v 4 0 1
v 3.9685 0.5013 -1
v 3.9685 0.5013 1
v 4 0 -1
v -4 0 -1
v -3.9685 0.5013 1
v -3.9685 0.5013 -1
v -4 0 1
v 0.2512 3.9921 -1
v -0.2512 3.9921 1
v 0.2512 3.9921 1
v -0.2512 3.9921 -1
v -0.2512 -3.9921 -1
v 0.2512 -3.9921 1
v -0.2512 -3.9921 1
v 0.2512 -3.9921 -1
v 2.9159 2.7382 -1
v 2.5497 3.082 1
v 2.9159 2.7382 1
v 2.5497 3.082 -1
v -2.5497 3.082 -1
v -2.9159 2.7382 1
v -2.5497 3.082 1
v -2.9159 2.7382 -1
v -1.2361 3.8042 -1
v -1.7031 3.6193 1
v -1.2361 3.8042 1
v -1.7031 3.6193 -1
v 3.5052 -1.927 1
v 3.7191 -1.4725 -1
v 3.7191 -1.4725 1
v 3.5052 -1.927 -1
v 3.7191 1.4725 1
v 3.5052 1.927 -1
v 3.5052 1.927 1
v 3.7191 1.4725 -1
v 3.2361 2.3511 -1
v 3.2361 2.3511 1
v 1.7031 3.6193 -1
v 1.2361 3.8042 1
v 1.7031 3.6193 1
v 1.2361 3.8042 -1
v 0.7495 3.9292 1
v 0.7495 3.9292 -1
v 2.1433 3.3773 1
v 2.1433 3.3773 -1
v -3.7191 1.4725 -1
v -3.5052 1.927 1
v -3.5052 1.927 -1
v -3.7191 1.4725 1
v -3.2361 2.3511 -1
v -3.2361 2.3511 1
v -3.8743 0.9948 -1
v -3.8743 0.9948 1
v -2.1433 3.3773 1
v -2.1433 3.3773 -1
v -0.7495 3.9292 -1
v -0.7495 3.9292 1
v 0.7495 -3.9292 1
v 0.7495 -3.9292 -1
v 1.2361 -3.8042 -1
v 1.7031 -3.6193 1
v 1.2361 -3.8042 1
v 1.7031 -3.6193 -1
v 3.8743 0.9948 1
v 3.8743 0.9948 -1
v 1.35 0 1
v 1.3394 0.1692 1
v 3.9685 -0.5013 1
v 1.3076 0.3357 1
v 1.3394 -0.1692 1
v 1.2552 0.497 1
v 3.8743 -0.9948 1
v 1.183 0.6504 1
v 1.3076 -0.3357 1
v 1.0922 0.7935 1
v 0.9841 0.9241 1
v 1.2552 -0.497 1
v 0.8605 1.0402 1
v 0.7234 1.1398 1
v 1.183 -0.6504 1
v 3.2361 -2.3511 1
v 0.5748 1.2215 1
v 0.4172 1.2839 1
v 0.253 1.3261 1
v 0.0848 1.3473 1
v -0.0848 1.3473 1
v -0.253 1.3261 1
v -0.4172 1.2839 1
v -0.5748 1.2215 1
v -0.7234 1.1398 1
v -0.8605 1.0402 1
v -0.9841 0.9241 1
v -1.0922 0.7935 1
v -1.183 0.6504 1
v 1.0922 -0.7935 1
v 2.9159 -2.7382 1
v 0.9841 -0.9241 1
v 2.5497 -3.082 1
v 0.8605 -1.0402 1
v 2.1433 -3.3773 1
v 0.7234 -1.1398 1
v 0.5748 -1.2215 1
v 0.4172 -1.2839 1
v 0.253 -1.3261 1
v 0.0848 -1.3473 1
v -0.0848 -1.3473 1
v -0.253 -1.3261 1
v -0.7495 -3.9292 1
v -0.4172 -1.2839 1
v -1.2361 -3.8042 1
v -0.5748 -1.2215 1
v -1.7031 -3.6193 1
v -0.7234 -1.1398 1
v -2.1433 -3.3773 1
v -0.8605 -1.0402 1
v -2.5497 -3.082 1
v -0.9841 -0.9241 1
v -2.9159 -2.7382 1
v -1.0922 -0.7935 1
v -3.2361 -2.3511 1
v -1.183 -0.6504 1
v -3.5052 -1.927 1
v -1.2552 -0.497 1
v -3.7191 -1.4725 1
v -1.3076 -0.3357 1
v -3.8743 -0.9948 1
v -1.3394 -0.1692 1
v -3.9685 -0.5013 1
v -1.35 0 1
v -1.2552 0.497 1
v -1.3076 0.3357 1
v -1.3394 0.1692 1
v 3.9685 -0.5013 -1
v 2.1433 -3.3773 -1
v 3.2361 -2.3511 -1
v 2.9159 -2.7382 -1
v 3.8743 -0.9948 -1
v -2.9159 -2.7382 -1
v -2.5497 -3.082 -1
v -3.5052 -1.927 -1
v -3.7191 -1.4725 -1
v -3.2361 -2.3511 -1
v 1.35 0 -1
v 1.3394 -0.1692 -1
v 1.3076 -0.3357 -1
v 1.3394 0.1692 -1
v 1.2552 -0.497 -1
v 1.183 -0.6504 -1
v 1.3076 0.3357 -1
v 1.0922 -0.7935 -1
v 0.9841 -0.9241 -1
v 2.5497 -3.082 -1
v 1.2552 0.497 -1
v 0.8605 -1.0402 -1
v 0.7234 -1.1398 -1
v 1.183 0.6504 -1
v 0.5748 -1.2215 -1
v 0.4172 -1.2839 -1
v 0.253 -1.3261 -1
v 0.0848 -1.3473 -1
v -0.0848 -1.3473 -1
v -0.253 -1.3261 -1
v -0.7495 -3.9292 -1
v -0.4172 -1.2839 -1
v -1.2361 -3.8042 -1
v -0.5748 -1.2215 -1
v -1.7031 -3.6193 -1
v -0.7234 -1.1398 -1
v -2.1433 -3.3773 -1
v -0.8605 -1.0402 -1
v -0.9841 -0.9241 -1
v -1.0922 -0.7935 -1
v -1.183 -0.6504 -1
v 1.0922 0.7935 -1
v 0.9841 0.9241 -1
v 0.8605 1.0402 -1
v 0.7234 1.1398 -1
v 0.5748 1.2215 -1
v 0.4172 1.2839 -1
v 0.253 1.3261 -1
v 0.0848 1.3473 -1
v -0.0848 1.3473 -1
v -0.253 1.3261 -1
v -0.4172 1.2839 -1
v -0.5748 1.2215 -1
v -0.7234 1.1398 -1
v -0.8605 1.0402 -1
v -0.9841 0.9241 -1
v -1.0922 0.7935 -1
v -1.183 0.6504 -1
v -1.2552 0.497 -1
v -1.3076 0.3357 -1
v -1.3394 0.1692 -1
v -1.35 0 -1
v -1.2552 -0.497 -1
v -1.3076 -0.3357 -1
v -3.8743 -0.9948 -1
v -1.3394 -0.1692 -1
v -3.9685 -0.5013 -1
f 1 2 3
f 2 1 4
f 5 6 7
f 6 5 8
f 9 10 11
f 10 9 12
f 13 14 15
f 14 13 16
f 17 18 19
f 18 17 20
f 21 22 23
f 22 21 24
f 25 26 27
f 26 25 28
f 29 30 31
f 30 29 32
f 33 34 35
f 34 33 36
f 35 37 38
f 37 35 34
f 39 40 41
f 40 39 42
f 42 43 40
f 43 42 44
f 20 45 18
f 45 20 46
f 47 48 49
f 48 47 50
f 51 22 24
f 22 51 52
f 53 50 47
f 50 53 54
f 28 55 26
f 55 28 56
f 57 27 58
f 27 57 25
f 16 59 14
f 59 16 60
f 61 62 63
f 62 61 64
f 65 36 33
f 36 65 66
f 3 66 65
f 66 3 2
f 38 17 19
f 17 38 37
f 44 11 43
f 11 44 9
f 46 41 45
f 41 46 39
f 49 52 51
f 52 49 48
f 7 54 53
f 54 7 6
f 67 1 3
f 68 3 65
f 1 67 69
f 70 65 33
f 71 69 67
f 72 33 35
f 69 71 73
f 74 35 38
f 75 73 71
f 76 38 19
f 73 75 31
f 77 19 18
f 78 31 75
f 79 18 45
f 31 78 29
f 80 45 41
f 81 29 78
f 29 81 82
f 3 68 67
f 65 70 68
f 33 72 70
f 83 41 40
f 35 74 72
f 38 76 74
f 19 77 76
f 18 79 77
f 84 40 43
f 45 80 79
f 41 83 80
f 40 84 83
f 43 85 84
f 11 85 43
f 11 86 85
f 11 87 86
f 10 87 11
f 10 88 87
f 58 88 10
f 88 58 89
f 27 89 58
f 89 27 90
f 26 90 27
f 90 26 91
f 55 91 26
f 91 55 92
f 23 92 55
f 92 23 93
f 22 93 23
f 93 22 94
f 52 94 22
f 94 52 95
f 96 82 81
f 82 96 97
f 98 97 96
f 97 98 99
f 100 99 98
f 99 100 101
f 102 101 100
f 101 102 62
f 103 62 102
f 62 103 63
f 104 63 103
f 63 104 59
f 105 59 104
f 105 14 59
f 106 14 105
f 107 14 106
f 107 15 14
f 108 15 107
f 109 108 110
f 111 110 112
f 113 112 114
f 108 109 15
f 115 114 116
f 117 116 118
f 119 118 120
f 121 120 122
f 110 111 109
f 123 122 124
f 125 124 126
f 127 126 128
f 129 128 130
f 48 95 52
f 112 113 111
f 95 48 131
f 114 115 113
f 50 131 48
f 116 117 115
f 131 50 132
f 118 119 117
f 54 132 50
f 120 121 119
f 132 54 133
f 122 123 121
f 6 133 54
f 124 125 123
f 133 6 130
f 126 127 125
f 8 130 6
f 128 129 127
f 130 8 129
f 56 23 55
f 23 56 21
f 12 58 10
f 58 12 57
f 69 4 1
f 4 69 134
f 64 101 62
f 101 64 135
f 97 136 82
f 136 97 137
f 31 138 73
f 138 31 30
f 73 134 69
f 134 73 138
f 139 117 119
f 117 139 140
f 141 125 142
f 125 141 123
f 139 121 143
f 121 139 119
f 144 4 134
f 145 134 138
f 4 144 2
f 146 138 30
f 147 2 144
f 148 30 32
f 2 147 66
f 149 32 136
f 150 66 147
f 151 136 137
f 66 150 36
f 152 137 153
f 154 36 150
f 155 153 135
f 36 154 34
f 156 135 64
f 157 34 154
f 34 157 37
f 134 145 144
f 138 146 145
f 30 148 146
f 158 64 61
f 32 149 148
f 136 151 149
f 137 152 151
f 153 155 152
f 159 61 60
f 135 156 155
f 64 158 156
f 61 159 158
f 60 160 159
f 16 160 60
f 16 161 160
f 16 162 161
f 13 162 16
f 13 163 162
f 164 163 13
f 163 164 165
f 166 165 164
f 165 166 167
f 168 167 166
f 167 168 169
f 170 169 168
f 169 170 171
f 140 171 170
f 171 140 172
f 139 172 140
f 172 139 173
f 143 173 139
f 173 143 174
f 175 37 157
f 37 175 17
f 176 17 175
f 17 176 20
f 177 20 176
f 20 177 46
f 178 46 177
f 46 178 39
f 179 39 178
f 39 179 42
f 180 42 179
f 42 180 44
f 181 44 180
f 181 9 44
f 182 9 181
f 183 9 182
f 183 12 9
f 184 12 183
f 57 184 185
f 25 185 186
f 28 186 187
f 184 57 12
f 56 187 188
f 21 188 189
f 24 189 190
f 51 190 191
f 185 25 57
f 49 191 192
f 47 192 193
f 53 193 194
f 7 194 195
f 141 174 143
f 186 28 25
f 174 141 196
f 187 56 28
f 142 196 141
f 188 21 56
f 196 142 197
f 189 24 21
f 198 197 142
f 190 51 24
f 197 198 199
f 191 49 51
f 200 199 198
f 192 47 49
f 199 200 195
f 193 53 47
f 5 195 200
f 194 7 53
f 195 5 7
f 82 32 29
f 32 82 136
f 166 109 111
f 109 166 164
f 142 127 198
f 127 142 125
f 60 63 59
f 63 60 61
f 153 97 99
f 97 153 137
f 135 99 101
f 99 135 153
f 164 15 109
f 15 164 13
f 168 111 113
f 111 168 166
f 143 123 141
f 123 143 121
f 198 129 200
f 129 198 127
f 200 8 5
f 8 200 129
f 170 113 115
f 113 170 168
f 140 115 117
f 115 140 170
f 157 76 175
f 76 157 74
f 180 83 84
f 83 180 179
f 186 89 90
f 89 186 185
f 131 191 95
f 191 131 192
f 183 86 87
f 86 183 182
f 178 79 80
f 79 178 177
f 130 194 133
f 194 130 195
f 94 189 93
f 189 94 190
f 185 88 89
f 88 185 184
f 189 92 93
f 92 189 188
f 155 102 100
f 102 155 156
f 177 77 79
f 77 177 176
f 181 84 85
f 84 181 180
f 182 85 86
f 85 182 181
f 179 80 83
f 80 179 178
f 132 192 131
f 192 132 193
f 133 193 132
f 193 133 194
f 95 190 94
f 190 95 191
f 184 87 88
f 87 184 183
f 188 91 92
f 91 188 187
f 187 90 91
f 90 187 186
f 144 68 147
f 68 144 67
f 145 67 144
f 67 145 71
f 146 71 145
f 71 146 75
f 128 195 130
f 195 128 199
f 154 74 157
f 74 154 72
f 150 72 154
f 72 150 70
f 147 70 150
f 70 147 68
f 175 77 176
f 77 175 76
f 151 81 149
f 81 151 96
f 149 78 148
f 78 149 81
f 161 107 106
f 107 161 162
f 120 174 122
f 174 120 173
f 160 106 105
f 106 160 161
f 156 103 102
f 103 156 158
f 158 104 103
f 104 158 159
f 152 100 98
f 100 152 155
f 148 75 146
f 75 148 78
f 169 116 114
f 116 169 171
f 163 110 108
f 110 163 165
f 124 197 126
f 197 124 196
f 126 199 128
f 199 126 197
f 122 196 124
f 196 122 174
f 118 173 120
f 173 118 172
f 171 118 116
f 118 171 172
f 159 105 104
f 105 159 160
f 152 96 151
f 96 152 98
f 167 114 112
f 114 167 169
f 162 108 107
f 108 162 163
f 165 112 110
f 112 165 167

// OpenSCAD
$fn = 50;


difference() {
	union() {
		translate(v = [0, 0, -1.0000000000]) {
			cylinder(h = 2, r = 4.0000000000);
		}
	}
	union() {
		translate(v = [0, 0, -100.0000000000]) {
			cylinder(h = 200, r = 1.3500000000);
		}
	}
}
